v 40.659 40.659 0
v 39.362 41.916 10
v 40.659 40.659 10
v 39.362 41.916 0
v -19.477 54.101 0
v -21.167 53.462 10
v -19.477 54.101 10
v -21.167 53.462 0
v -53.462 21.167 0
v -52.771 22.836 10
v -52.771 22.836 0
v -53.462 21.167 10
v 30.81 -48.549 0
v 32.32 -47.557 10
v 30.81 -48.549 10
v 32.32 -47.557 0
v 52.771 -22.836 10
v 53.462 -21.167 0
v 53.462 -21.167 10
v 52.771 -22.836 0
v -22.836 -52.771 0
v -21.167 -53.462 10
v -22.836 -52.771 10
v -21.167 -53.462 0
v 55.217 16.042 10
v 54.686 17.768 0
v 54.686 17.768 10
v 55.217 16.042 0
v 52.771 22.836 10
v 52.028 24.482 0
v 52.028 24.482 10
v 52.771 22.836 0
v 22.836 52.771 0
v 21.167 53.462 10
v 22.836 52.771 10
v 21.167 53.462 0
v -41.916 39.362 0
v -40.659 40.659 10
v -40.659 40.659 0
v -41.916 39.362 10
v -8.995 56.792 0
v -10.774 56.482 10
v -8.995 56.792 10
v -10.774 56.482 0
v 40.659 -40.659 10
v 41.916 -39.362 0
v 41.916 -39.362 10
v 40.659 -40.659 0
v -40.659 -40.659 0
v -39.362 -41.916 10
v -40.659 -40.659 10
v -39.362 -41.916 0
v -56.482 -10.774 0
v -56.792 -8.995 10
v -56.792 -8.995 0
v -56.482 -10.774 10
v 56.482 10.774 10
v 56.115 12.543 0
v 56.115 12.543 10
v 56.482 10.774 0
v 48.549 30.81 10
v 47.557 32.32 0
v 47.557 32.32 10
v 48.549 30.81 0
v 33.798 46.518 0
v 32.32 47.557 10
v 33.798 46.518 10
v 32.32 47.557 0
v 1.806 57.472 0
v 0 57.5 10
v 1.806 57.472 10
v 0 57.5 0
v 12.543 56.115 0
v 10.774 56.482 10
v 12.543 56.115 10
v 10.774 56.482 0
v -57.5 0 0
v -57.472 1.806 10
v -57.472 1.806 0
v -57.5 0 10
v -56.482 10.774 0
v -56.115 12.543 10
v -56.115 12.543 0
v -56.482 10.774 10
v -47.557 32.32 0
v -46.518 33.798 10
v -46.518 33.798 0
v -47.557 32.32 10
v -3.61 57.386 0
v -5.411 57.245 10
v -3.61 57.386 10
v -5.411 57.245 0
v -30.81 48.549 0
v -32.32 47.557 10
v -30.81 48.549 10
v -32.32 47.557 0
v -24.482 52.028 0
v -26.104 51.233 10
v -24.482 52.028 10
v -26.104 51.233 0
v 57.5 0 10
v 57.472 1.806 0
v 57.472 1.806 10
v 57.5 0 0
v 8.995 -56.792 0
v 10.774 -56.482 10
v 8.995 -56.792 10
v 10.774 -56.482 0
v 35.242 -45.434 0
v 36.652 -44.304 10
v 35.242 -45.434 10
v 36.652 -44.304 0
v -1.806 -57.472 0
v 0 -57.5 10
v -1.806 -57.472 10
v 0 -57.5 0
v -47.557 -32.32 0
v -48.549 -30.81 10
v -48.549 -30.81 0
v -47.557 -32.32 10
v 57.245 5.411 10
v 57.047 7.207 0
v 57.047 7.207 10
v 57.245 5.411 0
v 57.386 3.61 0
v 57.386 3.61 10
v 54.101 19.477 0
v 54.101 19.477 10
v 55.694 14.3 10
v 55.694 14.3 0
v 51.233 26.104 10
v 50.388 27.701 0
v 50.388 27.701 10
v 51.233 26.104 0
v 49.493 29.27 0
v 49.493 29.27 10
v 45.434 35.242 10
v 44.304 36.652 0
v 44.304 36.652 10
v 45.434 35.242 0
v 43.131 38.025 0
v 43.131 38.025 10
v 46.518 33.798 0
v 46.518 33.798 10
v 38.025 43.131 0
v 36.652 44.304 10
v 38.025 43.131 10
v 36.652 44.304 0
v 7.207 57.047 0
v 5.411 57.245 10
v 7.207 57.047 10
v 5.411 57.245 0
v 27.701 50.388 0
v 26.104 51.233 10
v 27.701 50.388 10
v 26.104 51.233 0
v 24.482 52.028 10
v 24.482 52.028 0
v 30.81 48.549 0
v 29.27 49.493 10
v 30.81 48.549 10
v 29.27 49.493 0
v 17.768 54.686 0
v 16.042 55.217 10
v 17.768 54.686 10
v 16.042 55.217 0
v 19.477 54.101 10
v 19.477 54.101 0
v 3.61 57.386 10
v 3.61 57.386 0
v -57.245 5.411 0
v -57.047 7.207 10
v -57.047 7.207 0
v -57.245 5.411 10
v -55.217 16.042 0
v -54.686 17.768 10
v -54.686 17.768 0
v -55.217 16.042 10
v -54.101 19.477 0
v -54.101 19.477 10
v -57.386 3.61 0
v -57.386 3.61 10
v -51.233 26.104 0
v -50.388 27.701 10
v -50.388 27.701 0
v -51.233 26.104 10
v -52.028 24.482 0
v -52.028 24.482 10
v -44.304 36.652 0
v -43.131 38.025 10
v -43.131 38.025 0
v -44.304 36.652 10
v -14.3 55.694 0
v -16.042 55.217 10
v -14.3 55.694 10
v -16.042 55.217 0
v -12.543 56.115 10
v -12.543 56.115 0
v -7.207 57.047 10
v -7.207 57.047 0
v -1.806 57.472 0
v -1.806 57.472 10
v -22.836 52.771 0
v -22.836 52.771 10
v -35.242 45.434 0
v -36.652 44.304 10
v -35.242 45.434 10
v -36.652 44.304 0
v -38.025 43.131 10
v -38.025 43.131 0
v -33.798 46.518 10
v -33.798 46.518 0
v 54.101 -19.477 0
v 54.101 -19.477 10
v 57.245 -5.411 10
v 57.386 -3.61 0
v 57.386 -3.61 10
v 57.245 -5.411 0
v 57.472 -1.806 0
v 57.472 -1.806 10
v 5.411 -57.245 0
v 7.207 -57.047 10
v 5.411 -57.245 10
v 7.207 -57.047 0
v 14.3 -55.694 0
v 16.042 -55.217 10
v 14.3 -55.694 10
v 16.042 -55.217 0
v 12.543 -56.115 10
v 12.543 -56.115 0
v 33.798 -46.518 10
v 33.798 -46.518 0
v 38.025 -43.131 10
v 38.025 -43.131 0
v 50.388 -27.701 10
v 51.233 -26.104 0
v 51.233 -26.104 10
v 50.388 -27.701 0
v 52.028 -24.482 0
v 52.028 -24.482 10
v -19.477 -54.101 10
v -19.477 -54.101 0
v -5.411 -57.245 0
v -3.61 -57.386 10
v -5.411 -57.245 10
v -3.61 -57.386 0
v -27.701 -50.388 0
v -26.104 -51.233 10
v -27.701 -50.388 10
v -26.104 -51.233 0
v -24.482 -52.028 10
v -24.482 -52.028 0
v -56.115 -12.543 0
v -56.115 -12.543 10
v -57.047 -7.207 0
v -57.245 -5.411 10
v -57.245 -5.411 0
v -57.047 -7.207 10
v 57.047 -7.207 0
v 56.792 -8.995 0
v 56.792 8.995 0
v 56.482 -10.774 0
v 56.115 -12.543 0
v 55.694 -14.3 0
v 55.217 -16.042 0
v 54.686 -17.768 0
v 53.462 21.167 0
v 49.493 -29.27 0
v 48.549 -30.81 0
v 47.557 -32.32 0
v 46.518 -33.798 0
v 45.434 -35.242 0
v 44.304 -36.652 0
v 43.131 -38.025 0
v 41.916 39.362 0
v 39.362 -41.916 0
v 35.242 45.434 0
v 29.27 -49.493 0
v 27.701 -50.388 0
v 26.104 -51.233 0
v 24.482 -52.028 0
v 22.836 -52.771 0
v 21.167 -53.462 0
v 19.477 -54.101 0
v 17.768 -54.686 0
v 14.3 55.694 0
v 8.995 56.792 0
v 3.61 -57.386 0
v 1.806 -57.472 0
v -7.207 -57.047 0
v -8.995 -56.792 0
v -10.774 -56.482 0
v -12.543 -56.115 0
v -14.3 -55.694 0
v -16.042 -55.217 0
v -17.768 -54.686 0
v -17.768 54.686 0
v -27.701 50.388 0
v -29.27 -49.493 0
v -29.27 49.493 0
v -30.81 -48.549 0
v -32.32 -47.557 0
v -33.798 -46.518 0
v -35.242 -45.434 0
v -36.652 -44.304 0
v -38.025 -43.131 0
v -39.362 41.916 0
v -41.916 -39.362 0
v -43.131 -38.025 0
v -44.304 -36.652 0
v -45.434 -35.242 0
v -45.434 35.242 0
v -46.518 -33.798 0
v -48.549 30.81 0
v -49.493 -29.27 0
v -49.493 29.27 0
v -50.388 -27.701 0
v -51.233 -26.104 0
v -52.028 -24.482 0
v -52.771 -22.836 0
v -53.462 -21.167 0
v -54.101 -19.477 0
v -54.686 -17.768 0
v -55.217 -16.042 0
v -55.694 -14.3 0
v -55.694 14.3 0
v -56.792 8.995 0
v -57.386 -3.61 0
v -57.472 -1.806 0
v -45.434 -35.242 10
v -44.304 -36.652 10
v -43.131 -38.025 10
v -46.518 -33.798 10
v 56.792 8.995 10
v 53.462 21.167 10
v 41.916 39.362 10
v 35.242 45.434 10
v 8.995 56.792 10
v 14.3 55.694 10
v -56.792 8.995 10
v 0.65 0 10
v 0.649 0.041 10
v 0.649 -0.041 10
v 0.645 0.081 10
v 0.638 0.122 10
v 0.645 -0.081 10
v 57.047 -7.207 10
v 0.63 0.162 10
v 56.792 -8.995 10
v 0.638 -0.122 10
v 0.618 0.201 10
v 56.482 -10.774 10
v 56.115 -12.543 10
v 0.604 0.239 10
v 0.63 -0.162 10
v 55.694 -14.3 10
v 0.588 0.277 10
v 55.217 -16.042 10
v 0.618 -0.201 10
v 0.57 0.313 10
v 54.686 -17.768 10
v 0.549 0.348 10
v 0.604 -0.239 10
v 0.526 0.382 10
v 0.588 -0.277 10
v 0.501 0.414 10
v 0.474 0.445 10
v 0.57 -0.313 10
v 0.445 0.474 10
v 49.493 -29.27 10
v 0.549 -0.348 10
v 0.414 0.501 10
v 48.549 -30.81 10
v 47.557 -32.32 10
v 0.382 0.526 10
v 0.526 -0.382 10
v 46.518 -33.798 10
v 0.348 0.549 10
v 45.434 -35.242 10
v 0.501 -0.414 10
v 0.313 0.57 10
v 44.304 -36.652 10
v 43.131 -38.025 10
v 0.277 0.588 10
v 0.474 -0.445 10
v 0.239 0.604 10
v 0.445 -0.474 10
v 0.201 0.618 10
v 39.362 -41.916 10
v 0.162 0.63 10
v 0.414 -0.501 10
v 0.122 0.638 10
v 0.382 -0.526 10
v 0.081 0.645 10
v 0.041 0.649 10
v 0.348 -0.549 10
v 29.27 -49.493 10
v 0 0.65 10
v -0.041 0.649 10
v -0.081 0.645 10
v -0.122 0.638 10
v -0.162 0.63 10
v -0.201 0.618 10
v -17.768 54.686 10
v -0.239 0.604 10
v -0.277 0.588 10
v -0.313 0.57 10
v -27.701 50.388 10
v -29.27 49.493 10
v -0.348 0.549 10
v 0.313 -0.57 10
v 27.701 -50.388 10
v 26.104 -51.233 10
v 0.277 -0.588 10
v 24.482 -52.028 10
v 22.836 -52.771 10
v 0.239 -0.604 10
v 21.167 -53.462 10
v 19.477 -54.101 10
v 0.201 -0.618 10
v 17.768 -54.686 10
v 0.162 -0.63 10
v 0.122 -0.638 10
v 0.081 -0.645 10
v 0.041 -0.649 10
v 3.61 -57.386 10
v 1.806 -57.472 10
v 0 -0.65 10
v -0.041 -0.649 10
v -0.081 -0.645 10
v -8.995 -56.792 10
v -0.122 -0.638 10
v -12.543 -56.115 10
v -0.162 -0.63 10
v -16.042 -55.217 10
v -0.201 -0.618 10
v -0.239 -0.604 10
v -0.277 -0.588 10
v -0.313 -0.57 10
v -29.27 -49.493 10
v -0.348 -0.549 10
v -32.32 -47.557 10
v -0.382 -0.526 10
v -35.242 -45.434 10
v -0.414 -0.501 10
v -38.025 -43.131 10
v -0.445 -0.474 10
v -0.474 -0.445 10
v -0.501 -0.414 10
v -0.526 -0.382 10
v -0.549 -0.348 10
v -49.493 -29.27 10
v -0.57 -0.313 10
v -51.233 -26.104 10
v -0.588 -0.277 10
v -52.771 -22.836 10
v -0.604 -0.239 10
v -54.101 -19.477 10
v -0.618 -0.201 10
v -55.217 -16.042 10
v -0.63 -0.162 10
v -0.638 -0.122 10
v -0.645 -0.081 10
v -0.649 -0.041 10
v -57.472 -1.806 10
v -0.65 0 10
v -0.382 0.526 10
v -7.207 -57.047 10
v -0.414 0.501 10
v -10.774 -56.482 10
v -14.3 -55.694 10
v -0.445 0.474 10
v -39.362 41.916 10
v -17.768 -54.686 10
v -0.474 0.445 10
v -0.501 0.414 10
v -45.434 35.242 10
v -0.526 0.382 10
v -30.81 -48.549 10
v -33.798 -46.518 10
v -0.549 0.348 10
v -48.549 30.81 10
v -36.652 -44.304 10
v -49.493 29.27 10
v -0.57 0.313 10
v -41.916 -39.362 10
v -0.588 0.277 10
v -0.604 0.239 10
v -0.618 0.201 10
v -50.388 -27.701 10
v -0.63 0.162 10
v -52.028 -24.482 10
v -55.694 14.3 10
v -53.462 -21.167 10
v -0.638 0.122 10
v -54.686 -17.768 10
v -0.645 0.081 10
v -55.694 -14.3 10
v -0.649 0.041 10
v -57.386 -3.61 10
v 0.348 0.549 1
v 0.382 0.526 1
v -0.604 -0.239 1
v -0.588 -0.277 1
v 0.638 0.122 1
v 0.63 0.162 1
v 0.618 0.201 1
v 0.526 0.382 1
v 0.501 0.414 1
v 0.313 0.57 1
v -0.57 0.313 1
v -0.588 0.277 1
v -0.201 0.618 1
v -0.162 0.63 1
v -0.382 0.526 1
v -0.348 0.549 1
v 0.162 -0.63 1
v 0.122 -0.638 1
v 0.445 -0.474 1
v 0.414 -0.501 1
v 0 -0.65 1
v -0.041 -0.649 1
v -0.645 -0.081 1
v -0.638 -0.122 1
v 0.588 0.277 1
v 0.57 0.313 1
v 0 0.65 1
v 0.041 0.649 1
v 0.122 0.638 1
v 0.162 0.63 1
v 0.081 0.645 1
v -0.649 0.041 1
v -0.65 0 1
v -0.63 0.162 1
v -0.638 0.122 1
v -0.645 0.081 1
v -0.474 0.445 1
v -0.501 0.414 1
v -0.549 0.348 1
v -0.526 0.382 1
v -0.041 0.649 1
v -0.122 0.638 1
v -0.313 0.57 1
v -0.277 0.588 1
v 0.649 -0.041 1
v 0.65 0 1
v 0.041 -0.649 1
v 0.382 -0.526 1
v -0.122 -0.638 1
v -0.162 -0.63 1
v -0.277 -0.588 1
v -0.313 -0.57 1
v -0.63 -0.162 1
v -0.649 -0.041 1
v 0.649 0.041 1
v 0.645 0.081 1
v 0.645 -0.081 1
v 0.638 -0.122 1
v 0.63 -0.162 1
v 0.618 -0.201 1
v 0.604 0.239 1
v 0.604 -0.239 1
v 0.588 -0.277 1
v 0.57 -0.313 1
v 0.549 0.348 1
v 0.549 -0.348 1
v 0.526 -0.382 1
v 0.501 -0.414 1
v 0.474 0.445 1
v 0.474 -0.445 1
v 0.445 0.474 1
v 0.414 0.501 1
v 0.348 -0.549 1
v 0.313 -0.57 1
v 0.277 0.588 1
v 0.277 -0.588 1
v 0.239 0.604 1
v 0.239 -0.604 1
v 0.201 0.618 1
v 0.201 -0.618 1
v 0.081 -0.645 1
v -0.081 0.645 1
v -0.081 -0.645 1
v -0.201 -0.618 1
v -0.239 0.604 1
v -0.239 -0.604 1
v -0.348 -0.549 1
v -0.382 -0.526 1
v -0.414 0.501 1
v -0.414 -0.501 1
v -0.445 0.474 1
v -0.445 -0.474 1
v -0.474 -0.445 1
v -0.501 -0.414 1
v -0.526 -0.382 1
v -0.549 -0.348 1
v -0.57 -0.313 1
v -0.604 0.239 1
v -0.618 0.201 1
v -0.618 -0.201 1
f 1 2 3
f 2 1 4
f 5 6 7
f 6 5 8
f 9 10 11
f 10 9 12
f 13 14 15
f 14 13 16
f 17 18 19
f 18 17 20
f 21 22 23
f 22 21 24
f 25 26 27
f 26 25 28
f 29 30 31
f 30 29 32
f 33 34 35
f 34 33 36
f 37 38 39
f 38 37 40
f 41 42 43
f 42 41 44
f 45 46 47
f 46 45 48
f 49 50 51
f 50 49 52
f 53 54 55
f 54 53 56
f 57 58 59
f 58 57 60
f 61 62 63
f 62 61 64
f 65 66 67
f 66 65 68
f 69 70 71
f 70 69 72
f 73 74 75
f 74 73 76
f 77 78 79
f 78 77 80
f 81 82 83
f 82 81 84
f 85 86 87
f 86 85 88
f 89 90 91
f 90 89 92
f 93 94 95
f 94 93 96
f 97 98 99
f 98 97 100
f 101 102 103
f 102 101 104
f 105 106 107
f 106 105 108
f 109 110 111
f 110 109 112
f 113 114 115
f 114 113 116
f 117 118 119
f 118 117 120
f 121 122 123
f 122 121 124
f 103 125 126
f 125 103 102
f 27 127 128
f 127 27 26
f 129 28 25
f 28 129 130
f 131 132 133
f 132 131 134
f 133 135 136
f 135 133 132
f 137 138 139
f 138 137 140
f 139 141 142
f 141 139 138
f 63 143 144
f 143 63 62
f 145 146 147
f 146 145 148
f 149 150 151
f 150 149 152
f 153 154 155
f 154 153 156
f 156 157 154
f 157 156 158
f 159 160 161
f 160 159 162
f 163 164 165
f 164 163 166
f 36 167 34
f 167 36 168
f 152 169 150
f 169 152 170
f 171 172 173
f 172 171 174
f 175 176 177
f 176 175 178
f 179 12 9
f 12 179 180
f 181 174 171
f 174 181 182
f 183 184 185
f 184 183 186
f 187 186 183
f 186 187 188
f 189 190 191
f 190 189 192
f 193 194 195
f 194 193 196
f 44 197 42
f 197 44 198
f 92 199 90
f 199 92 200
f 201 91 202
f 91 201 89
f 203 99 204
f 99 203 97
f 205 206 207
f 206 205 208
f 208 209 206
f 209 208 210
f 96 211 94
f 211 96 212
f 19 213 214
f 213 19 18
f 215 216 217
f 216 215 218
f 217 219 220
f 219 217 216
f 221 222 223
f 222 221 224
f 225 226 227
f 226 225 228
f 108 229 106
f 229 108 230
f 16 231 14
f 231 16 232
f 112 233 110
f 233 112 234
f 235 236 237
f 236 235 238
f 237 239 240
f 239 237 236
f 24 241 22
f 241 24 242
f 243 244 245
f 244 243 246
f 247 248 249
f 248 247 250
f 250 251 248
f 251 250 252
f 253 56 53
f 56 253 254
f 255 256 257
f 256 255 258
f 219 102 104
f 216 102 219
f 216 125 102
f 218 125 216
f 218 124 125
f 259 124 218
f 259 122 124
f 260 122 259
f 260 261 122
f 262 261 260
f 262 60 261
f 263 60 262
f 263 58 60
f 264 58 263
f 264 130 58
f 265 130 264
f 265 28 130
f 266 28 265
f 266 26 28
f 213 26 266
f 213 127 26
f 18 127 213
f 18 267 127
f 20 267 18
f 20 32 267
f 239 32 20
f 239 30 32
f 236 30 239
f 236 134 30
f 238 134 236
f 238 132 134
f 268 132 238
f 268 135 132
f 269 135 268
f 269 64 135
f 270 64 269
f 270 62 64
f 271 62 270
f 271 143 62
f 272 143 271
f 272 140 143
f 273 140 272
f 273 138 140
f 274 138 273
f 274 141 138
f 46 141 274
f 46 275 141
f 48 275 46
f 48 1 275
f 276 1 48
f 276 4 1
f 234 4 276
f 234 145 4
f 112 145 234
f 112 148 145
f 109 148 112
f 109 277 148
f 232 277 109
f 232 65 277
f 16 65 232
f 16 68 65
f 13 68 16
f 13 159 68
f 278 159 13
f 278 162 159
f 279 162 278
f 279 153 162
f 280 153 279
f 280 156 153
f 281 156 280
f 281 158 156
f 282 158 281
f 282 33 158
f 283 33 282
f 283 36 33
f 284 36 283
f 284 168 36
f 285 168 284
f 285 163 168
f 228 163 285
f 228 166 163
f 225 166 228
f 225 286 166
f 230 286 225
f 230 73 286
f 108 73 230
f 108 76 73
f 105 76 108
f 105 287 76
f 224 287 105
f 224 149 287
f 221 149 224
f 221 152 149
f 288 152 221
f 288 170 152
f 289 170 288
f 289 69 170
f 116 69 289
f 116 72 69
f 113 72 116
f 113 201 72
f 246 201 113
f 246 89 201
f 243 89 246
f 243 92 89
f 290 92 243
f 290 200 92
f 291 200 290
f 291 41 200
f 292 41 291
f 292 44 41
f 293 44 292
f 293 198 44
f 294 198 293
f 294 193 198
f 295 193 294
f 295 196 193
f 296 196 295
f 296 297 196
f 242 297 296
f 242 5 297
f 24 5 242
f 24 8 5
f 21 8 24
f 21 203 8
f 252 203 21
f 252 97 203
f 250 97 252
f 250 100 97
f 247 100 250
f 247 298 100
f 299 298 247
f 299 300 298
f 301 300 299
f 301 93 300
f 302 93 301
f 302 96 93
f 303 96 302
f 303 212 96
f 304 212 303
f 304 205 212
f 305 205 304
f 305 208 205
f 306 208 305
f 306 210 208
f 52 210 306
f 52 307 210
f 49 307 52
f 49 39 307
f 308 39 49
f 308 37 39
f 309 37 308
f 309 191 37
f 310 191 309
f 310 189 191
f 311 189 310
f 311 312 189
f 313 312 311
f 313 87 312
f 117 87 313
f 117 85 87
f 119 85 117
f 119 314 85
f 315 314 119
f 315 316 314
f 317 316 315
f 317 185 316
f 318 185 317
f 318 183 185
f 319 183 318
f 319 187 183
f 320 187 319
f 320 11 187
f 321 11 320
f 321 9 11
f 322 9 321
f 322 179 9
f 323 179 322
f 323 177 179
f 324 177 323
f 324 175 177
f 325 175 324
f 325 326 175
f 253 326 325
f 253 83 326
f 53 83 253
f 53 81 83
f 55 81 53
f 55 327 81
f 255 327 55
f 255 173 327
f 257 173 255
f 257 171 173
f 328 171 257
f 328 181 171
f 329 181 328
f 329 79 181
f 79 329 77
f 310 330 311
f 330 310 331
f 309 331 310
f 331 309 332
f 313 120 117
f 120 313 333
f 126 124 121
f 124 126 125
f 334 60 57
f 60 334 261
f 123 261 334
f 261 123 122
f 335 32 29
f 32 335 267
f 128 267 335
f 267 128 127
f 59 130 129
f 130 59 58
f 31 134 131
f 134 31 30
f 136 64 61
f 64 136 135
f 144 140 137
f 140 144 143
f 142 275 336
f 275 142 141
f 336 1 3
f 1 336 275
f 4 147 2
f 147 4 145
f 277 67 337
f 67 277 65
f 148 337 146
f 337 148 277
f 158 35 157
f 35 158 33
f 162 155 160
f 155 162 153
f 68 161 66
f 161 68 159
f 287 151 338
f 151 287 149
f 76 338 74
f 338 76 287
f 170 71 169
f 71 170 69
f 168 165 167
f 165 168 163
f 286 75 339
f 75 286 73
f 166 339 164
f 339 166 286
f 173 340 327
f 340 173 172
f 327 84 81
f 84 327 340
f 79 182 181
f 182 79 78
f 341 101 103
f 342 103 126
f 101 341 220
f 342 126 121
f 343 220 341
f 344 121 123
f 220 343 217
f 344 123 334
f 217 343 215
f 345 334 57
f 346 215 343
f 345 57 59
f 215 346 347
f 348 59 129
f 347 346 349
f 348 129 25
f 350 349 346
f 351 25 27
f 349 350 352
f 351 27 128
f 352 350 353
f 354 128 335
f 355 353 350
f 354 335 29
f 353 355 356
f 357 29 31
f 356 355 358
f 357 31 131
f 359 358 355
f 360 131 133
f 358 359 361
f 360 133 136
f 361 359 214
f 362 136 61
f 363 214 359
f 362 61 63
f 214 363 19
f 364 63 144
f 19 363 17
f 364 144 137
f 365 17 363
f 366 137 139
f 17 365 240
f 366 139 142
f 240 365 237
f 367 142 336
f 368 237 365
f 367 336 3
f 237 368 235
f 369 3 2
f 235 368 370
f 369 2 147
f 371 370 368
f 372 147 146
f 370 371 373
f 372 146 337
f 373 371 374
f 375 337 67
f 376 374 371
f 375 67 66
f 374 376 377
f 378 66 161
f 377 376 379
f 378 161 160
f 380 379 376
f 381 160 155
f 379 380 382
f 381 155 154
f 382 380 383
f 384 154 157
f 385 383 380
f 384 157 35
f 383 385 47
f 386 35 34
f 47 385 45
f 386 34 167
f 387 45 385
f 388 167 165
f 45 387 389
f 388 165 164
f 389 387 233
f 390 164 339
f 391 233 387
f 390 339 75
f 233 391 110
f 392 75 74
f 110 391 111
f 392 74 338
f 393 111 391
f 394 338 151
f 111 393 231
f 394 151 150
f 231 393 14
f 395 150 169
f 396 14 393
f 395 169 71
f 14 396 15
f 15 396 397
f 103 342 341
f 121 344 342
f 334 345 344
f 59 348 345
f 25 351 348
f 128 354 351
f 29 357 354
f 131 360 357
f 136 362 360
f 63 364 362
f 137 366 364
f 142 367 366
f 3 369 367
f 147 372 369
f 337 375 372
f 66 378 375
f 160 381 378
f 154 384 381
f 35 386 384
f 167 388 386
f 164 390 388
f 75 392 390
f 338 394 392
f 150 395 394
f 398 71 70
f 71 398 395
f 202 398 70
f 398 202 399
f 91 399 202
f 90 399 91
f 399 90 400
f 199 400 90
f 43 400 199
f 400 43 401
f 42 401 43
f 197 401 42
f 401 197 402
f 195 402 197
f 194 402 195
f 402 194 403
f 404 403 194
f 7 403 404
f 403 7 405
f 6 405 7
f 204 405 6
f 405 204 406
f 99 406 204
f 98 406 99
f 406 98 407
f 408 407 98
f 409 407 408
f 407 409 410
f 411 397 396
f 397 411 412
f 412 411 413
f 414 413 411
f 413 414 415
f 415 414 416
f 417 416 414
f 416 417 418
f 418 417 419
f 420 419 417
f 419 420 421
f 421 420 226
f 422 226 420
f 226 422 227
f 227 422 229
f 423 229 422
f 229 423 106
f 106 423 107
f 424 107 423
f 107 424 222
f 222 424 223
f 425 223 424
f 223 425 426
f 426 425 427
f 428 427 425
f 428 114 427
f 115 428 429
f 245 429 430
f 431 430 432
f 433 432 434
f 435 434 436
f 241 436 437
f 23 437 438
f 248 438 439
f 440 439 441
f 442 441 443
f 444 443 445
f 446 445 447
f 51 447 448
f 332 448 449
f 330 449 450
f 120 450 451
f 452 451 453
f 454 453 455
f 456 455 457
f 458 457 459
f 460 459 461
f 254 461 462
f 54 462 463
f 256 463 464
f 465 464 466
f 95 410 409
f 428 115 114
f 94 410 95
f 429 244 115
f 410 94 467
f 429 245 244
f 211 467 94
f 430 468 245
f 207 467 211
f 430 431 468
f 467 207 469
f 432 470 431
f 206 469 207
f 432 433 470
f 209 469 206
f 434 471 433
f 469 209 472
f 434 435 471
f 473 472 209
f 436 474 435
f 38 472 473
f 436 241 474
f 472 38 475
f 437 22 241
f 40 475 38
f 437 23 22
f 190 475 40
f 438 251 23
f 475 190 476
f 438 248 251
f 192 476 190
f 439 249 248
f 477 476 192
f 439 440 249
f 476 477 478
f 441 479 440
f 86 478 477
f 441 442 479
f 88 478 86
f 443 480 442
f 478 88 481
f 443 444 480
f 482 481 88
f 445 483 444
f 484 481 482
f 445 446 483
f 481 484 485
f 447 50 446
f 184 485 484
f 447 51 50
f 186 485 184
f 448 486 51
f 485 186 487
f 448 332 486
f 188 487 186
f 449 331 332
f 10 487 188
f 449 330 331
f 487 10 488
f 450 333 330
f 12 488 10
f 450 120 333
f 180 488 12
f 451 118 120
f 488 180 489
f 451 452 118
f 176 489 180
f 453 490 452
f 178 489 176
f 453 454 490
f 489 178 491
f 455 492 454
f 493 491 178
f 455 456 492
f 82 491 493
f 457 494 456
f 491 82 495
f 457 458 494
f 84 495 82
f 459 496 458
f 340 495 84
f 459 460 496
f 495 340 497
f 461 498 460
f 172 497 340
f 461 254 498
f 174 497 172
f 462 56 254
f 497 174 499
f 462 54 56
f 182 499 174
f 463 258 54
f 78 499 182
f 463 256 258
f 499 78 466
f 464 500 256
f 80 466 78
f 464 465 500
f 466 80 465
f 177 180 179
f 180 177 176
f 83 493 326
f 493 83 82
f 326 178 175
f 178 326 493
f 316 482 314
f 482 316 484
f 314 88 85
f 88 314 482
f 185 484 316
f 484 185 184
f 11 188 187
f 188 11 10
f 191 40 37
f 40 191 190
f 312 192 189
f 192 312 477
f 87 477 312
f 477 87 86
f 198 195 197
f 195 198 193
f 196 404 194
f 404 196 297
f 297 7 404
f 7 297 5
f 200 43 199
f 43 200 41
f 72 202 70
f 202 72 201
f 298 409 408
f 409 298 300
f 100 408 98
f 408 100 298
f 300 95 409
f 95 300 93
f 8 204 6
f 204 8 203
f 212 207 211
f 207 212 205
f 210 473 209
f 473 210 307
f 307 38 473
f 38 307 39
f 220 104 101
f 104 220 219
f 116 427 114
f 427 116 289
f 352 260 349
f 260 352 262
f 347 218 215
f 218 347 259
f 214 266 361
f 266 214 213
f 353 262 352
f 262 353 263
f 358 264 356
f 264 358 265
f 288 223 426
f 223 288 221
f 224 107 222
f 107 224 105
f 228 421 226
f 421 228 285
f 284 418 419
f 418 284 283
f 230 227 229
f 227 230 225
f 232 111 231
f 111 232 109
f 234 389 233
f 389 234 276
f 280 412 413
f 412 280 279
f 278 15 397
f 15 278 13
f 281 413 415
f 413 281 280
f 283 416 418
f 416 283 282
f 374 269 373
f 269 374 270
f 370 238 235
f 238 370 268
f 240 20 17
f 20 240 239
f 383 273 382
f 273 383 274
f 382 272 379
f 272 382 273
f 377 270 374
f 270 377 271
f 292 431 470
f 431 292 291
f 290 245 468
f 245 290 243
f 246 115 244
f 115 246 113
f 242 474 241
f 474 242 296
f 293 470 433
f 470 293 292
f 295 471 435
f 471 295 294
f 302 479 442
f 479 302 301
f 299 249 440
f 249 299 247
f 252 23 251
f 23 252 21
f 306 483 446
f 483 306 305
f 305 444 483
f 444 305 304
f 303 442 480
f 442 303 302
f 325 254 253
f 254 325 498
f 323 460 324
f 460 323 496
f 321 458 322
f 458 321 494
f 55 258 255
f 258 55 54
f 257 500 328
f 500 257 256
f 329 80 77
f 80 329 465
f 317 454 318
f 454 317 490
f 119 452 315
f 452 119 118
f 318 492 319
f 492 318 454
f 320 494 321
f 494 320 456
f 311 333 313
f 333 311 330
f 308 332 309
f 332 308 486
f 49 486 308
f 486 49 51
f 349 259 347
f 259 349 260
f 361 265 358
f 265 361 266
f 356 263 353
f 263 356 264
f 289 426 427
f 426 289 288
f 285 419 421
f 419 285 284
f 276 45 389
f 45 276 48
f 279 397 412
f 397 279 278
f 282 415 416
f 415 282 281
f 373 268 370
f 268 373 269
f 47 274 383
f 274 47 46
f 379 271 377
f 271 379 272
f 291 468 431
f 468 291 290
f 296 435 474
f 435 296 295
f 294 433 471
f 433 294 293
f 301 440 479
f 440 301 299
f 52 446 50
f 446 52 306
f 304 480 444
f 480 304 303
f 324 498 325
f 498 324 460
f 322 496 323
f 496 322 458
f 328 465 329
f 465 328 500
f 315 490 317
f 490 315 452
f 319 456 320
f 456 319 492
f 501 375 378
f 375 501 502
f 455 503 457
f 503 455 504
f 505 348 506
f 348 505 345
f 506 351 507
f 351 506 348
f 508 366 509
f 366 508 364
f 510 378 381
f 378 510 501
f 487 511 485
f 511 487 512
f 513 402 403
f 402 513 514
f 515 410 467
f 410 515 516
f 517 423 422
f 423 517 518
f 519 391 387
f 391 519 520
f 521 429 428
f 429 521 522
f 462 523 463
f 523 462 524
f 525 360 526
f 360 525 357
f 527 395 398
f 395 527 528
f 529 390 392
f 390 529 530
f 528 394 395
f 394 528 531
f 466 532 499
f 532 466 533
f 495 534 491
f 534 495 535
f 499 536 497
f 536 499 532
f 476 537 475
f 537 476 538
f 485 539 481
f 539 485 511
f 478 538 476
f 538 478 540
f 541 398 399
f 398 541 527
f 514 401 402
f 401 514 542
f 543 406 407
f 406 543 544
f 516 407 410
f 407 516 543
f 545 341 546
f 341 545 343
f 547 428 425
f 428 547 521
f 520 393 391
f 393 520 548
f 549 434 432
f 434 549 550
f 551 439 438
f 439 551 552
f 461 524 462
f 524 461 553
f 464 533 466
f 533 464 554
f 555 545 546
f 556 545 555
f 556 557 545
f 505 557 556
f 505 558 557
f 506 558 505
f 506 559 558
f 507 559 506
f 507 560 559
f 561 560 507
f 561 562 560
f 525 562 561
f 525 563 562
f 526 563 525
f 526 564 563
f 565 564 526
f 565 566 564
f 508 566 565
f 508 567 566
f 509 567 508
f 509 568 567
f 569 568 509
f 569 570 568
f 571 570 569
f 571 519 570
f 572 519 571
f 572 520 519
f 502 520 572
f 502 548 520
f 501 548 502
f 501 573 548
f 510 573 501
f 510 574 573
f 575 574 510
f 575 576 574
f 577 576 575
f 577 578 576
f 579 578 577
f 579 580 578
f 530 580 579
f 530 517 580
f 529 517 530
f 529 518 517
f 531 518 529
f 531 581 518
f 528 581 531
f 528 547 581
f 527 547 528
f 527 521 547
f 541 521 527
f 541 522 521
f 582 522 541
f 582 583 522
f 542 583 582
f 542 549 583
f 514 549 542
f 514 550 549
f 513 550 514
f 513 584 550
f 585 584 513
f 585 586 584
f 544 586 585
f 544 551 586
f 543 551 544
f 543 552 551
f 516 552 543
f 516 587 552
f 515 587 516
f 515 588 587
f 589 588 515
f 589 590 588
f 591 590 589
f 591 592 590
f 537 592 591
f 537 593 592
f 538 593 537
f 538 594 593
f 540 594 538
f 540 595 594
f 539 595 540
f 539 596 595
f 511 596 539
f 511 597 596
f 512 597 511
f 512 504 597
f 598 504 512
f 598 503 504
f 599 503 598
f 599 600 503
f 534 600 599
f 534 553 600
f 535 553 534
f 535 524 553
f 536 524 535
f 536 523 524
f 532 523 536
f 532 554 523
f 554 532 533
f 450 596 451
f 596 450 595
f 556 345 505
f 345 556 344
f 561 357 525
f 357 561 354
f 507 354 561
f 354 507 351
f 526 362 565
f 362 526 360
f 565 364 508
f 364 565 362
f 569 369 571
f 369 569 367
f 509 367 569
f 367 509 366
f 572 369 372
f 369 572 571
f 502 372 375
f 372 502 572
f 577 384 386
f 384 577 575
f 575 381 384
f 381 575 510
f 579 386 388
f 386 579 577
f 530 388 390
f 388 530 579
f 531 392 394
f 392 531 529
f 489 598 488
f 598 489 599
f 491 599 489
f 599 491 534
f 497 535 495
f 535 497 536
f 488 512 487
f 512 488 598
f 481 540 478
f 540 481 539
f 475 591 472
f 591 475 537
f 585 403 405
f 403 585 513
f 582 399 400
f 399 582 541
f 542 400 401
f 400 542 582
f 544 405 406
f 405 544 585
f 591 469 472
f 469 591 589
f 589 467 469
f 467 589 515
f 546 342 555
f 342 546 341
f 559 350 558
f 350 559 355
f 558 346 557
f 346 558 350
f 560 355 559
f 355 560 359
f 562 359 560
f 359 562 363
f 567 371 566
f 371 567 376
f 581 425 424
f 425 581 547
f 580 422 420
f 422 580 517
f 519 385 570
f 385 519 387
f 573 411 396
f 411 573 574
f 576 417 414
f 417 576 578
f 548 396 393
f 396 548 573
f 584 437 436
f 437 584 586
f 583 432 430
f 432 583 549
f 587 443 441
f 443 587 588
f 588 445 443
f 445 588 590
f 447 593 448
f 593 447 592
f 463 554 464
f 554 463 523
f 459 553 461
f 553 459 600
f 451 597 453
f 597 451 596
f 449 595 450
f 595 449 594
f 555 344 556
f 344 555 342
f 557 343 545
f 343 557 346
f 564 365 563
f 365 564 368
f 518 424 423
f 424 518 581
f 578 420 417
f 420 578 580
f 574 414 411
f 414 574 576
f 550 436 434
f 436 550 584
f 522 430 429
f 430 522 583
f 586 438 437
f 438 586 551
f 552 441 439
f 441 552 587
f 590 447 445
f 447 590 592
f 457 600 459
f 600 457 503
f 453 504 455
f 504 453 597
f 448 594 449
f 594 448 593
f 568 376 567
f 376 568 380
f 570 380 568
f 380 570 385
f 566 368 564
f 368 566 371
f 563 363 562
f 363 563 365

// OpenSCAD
// cylinderplates for stirling engine (CNC)
// Sebastien C.
//


h=10;

difference(){
    cylinder(h, d=115, $fn=200);

    translate([0,0,h/2+1]) cylinder(h, d=1.3,center=true, $fn=100);

}
